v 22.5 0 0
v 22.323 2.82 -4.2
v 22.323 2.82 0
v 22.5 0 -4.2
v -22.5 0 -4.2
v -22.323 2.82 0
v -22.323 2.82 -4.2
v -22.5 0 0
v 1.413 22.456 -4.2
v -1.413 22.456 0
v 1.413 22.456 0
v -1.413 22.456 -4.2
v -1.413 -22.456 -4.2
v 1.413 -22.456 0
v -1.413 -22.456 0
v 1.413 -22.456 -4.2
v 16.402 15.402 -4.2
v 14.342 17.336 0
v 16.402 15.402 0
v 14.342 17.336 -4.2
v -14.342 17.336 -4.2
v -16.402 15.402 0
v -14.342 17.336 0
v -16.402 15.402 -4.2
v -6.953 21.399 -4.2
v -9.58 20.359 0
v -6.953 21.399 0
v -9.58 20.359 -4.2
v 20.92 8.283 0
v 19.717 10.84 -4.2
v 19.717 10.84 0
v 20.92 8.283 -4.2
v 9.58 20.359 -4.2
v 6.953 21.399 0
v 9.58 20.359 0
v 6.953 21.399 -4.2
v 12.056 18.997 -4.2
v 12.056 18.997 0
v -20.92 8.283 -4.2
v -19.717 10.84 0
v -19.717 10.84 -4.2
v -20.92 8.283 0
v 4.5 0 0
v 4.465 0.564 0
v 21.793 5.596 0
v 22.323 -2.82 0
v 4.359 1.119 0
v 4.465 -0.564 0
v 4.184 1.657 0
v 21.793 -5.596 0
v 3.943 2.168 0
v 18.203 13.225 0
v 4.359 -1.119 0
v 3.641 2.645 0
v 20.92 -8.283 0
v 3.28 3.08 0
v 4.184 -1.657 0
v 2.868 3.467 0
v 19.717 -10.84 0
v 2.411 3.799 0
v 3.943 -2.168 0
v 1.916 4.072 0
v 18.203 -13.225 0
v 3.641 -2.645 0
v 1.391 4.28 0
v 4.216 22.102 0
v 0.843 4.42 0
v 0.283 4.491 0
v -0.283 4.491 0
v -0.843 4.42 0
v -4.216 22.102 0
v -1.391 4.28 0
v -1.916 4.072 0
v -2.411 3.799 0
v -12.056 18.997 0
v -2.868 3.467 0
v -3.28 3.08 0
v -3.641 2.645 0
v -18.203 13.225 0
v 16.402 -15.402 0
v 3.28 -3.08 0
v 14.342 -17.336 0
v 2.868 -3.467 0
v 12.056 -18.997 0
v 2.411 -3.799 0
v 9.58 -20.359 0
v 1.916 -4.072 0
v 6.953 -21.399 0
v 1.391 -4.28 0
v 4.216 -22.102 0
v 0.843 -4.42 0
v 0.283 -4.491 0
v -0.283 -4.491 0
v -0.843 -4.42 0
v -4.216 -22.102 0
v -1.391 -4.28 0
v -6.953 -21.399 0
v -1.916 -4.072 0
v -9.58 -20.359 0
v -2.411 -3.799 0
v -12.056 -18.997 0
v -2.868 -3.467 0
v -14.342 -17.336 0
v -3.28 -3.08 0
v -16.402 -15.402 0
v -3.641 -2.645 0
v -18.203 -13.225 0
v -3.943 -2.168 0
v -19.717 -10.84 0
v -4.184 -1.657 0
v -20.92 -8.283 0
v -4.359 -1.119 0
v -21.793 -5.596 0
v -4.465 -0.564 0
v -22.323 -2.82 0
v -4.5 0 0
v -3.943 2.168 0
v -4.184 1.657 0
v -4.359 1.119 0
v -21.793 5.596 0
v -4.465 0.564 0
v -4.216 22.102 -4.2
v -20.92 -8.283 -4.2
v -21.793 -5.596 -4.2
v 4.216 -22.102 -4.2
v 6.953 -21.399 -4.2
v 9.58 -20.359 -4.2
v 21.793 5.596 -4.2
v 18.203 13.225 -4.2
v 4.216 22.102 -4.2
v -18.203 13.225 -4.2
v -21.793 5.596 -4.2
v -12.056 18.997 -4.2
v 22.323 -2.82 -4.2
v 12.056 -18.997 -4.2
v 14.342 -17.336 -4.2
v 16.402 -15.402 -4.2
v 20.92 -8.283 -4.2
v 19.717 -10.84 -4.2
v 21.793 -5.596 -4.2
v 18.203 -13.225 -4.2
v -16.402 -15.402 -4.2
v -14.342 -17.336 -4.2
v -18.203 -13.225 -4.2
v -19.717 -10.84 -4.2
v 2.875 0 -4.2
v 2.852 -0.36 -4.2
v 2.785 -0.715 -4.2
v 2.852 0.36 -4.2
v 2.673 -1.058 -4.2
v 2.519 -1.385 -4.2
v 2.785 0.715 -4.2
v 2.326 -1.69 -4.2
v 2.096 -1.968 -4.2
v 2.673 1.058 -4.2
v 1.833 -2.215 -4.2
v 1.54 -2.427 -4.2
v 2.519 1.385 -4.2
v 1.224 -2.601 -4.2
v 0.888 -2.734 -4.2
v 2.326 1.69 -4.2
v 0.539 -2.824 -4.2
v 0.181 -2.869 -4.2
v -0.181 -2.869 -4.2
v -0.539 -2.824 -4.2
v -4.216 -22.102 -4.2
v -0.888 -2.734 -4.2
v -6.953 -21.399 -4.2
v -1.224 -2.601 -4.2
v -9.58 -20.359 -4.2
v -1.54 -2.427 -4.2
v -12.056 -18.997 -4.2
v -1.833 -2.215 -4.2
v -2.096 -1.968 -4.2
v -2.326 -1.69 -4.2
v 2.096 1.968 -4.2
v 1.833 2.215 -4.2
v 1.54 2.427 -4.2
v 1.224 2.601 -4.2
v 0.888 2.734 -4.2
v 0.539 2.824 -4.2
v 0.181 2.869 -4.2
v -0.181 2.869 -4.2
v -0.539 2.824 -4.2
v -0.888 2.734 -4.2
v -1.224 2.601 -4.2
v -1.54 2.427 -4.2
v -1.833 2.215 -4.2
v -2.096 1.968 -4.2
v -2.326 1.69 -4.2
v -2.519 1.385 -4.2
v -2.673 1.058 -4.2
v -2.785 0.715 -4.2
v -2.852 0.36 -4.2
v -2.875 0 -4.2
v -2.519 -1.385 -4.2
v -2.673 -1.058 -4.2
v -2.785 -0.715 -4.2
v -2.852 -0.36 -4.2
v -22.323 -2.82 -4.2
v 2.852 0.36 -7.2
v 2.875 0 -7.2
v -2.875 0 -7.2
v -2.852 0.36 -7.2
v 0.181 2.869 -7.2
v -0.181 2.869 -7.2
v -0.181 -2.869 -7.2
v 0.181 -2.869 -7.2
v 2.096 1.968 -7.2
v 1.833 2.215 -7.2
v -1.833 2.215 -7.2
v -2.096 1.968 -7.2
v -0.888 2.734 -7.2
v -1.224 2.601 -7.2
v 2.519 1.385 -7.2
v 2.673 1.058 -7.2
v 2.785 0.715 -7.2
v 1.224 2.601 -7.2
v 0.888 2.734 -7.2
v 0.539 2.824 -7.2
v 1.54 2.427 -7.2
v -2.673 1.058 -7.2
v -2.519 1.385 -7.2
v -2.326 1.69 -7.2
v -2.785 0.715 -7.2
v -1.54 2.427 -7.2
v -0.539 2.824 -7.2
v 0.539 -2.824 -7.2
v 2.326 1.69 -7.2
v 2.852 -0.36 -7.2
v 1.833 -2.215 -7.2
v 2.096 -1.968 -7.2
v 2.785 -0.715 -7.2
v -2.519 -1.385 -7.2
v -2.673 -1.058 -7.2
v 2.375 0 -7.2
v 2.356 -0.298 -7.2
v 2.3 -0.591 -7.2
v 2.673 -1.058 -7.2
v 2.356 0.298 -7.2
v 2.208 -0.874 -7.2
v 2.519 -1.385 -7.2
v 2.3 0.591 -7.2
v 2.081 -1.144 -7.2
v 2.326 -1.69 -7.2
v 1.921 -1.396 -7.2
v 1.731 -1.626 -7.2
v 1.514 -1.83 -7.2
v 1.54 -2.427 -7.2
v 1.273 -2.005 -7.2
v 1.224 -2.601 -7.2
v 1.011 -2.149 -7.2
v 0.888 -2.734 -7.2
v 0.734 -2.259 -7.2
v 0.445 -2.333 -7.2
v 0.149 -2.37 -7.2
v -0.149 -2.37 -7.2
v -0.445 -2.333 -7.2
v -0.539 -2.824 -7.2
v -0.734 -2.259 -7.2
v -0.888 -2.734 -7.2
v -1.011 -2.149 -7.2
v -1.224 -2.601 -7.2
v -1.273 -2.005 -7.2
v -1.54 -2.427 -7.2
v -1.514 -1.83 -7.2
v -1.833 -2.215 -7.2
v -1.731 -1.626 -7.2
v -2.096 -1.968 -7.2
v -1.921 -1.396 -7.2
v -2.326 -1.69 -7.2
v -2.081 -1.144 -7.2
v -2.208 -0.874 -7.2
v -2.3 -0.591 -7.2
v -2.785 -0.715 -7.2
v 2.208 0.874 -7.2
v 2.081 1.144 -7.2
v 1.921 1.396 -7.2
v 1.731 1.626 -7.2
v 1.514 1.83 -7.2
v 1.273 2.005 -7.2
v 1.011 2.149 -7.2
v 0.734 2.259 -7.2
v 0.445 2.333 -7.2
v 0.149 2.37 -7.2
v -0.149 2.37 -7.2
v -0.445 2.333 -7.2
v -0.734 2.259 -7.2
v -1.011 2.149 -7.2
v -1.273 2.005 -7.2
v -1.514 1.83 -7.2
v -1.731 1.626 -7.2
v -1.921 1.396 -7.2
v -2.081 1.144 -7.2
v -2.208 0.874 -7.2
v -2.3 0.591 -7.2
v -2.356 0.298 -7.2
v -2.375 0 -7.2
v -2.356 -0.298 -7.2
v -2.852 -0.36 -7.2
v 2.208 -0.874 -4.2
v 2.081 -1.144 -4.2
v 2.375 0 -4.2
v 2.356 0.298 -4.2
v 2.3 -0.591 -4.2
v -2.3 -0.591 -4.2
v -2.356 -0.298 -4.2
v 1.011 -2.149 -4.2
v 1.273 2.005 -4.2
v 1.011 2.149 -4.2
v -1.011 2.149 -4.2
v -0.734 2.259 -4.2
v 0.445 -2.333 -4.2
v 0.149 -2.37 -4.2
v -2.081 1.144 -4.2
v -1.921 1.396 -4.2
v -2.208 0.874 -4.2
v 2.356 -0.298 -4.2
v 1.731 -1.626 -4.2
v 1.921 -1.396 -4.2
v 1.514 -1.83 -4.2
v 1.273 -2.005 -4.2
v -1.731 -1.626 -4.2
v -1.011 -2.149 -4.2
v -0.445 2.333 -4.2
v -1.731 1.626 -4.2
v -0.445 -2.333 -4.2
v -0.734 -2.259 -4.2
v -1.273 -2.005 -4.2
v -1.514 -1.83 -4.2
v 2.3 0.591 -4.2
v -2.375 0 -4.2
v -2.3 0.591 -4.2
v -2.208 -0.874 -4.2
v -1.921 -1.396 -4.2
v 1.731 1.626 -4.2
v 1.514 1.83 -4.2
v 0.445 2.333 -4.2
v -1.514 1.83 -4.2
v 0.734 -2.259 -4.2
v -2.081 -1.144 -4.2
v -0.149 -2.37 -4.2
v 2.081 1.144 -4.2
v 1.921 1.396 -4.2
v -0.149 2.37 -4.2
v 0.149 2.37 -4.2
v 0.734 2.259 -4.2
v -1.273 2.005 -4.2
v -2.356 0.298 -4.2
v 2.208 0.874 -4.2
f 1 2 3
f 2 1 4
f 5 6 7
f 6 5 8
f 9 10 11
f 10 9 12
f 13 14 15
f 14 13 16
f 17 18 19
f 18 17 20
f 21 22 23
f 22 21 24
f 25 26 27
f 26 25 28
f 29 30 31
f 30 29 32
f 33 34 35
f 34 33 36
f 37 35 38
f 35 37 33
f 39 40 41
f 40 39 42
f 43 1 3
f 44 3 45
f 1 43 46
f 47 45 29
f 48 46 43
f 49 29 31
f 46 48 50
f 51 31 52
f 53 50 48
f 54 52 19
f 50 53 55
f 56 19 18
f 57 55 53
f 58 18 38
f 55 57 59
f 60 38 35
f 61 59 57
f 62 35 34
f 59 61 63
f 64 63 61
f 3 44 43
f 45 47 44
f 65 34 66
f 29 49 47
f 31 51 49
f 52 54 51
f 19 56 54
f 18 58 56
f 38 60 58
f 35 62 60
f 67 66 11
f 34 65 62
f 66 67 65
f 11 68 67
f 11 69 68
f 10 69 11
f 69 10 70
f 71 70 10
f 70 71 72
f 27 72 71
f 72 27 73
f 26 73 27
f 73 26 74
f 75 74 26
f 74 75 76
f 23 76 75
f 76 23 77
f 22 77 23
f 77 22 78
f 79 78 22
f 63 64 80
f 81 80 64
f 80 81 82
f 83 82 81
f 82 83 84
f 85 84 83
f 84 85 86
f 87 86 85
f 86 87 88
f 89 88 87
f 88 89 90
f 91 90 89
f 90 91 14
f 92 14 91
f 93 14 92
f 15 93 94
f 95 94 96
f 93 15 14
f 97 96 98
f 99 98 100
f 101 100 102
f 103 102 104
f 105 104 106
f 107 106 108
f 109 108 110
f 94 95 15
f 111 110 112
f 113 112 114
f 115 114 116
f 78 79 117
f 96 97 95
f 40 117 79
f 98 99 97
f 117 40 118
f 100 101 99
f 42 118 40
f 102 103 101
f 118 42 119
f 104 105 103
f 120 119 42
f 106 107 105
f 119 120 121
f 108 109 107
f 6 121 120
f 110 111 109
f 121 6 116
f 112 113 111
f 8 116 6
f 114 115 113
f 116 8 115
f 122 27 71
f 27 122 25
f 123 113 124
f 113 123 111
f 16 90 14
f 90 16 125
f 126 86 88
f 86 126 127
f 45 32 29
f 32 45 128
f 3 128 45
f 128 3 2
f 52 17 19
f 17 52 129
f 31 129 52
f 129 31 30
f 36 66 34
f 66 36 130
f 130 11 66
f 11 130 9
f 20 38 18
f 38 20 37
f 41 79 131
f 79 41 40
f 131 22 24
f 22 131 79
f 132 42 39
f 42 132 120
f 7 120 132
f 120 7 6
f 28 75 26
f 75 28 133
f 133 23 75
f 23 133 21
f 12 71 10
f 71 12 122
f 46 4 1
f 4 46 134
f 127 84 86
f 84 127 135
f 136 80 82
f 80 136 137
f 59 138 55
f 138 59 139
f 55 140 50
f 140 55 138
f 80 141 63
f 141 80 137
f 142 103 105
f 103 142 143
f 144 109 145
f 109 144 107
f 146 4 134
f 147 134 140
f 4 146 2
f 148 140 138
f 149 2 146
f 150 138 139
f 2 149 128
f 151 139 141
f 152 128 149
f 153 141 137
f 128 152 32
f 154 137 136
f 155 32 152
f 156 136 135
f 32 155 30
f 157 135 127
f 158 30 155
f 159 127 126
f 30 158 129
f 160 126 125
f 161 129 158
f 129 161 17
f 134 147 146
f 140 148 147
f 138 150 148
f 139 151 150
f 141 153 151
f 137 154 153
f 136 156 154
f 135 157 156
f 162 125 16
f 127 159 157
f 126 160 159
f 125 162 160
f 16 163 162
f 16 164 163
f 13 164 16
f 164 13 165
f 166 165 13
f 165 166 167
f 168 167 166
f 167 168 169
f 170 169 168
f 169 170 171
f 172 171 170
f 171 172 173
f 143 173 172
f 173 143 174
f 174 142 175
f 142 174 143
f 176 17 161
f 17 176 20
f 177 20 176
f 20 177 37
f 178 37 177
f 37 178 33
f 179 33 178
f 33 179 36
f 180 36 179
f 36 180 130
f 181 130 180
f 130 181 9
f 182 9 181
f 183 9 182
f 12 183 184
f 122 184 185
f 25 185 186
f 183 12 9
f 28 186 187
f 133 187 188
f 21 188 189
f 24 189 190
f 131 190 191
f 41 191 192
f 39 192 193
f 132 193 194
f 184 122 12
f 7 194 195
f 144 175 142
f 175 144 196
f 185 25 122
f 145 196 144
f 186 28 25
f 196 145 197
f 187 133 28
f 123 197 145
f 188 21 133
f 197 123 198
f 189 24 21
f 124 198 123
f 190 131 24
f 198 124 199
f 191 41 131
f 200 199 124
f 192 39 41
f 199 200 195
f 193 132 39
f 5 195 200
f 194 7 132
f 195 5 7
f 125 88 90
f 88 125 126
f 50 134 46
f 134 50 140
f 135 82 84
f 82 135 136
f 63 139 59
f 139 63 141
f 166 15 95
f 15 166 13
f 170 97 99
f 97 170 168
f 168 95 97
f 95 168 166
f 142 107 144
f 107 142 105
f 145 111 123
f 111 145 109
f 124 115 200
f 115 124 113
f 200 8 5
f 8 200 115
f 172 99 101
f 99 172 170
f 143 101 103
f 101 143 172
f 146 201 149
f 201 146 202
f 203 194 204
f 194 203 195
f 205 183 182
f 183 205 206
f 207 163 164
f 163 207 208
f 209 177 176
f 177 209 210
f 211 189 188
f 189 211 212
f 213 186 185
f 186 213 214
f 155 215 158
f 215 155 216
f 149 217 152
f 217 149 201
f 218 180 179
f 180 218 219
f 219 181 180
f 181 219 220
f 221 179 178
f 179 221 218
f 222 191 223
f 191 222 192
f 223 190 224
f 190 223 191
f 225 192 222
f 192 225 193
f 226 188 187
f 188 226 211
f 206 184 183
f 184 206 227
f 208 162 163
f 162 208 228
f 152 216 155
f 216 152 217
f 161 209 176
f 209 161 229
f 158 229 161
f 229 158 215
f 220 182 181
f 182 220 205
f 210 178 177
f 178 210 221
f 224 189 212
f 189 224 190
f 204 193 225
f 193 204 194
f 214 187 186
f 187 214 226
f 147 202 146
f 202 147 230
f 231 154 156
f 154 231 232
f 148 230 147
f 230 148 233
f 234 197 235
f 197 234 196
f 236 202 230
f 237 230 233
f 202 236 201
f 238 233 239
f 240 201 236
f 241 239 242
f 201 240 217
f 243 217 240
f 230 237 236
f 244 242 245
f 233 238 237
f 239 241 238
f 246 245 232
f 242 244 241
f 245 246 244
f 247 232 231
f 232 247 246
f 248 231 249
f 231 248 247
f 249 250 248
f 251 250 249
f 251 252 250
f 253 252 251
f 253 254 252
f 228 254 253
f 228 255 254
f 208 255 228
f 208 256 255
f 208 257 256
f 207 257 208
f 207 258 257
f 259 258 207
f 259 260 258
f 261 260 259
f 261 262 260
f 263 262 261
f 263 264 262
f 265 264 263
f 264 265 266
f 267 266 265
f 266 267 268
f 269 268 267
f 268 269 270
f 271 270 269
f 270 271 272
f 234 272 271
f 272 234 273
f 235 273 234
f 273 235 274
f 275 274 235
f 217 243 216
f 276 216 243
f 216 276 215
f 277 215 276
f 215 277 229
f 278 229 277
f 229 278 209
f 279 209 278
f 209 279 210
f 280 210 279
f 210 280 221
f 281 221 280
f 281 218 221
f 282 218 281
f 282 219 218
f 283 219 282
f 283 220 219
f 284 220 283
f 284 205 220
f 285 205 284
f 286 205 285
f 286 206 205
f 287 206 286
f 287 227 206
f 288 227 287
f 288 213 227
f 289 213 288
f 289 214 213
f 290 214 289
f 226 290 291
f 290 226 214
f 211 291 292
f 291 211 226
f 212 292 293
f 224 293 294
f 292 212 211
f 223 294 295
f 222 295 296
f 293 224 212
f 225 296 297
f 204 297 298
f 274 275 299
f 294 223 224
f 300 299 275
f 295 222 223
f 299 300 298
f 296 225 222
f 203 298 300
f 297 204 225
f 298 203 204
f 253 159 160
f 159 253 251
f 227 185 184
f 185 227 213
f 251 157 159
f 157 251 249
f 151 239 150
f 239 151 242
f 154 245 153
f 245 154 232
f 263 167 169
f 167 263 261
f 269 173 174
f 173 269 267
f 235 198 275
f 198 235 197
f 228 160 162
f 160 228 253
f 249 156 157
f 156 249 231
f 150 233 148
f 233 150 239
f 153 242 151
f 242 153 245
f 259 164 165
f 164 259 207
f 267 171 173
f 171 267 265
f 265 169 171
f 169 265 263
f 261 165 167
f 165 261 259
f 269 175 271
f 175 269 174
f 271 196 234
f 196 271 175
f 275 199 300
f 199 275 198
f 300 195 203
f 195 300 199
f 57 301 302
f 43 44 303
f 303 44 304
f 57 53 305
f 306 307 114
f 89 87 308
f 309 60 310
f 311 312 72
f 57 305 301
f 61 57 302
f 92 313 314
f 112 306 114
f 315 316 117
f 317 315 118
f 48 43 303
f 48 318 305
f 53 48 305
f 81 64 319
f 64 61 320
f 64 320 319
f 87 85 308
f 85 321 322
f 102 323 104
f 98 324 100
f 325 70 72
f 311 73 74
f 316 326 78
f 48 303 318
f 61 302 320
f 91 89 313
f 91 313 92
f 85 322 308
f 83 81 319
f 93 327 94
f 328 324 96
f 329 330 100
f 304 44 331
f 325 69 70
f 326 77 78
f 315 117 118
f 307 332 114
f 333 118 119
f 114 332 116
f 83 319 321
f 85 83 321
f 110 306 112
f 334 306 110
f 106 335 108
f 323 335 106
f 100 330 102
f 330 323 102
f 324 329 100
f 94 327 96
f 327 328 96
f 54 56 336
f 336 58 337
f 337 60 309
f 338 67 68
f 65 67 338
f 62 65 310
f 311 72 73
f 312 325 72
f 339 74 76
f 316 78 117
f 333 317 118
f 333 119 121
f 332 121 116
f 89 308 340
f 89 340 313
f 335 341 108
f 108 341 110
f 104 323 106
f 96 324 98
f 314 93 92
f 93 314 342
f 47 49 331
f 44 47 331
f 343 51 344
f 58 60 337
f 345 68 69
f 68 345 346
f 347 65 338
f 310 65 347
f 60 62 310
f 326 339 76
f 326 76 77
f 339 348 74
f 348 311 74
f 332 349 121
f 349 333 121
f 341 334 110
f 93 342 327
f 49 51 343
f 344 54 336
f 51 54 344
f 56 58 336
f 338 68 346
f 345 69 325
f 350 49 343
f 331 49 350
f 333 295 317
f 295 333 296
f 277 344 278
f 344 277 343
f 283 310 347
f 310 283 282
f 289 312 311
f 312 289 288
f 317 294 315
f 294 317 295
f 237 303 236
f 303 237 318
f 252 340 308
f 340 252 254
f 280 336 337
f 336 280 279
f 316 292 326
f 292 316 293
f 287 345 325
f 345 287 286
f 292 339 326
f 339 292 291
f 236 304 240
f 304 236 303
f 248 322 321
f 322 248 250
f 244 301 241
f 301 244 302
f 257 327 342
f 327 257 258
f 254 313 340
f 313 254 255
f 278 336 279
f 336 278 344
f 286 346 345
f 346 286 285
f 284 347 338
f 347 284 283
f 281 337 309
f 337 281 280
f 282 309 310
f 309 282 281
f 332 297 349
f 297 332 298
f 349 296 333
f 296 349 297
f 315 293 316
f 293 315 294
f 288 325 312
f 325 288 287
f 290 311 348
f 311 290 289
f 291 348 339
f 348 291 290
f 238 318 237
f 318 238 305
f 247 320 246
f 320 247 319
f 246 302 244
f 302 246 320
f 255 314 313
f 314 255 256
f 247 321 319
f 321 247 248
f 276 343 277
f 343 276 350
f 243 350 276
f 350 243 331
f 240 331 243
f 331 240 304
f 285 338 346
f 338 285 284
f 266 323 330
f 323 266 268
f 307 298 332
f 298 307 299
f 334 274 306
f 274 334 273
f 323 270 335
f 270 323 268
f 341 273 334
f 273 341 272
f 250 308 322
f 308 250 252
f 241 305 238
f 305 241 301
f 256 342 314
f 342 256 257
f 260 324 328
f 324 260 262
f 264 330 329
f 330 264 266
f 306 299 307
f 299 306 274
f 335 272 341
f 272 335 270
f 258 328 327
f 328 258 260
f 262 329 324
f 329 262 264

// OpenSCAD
$fn = 50;

difference() {
	union() {
		translate(v = [0, 0, -4.2]) {
			cylinder(h = 4.2, r = 22.5);
		}
		#translate(v = [0, 0, -7.2]) {
			cylinder(h = 7.2, r = 2.875);
		}
	}
	union() {
		translate(v = [0, 0, 0]) {
			rotate(a = [0, 0, 0]) {
				difference() {
					union() {
						translate(v = [0, 0, -7.2]) {
							cylinder(h = 7.2, r = 2.25);
						}
						translate(v = [0, 0, -4.2]) {
							cylinder(h = 4.2, r1 = 2.375, r2 = 4.5);
						}
						translate(v = [0, 0, -7.2]) {
							cylinder(h = 7.2, r = 2.375);
						}
						translate(v = [0, 0, -7.2]) {
							cylinder(h = 7.2, r = 2.25);
						}
					}
					union();
				}
			}
		}
	}
}
